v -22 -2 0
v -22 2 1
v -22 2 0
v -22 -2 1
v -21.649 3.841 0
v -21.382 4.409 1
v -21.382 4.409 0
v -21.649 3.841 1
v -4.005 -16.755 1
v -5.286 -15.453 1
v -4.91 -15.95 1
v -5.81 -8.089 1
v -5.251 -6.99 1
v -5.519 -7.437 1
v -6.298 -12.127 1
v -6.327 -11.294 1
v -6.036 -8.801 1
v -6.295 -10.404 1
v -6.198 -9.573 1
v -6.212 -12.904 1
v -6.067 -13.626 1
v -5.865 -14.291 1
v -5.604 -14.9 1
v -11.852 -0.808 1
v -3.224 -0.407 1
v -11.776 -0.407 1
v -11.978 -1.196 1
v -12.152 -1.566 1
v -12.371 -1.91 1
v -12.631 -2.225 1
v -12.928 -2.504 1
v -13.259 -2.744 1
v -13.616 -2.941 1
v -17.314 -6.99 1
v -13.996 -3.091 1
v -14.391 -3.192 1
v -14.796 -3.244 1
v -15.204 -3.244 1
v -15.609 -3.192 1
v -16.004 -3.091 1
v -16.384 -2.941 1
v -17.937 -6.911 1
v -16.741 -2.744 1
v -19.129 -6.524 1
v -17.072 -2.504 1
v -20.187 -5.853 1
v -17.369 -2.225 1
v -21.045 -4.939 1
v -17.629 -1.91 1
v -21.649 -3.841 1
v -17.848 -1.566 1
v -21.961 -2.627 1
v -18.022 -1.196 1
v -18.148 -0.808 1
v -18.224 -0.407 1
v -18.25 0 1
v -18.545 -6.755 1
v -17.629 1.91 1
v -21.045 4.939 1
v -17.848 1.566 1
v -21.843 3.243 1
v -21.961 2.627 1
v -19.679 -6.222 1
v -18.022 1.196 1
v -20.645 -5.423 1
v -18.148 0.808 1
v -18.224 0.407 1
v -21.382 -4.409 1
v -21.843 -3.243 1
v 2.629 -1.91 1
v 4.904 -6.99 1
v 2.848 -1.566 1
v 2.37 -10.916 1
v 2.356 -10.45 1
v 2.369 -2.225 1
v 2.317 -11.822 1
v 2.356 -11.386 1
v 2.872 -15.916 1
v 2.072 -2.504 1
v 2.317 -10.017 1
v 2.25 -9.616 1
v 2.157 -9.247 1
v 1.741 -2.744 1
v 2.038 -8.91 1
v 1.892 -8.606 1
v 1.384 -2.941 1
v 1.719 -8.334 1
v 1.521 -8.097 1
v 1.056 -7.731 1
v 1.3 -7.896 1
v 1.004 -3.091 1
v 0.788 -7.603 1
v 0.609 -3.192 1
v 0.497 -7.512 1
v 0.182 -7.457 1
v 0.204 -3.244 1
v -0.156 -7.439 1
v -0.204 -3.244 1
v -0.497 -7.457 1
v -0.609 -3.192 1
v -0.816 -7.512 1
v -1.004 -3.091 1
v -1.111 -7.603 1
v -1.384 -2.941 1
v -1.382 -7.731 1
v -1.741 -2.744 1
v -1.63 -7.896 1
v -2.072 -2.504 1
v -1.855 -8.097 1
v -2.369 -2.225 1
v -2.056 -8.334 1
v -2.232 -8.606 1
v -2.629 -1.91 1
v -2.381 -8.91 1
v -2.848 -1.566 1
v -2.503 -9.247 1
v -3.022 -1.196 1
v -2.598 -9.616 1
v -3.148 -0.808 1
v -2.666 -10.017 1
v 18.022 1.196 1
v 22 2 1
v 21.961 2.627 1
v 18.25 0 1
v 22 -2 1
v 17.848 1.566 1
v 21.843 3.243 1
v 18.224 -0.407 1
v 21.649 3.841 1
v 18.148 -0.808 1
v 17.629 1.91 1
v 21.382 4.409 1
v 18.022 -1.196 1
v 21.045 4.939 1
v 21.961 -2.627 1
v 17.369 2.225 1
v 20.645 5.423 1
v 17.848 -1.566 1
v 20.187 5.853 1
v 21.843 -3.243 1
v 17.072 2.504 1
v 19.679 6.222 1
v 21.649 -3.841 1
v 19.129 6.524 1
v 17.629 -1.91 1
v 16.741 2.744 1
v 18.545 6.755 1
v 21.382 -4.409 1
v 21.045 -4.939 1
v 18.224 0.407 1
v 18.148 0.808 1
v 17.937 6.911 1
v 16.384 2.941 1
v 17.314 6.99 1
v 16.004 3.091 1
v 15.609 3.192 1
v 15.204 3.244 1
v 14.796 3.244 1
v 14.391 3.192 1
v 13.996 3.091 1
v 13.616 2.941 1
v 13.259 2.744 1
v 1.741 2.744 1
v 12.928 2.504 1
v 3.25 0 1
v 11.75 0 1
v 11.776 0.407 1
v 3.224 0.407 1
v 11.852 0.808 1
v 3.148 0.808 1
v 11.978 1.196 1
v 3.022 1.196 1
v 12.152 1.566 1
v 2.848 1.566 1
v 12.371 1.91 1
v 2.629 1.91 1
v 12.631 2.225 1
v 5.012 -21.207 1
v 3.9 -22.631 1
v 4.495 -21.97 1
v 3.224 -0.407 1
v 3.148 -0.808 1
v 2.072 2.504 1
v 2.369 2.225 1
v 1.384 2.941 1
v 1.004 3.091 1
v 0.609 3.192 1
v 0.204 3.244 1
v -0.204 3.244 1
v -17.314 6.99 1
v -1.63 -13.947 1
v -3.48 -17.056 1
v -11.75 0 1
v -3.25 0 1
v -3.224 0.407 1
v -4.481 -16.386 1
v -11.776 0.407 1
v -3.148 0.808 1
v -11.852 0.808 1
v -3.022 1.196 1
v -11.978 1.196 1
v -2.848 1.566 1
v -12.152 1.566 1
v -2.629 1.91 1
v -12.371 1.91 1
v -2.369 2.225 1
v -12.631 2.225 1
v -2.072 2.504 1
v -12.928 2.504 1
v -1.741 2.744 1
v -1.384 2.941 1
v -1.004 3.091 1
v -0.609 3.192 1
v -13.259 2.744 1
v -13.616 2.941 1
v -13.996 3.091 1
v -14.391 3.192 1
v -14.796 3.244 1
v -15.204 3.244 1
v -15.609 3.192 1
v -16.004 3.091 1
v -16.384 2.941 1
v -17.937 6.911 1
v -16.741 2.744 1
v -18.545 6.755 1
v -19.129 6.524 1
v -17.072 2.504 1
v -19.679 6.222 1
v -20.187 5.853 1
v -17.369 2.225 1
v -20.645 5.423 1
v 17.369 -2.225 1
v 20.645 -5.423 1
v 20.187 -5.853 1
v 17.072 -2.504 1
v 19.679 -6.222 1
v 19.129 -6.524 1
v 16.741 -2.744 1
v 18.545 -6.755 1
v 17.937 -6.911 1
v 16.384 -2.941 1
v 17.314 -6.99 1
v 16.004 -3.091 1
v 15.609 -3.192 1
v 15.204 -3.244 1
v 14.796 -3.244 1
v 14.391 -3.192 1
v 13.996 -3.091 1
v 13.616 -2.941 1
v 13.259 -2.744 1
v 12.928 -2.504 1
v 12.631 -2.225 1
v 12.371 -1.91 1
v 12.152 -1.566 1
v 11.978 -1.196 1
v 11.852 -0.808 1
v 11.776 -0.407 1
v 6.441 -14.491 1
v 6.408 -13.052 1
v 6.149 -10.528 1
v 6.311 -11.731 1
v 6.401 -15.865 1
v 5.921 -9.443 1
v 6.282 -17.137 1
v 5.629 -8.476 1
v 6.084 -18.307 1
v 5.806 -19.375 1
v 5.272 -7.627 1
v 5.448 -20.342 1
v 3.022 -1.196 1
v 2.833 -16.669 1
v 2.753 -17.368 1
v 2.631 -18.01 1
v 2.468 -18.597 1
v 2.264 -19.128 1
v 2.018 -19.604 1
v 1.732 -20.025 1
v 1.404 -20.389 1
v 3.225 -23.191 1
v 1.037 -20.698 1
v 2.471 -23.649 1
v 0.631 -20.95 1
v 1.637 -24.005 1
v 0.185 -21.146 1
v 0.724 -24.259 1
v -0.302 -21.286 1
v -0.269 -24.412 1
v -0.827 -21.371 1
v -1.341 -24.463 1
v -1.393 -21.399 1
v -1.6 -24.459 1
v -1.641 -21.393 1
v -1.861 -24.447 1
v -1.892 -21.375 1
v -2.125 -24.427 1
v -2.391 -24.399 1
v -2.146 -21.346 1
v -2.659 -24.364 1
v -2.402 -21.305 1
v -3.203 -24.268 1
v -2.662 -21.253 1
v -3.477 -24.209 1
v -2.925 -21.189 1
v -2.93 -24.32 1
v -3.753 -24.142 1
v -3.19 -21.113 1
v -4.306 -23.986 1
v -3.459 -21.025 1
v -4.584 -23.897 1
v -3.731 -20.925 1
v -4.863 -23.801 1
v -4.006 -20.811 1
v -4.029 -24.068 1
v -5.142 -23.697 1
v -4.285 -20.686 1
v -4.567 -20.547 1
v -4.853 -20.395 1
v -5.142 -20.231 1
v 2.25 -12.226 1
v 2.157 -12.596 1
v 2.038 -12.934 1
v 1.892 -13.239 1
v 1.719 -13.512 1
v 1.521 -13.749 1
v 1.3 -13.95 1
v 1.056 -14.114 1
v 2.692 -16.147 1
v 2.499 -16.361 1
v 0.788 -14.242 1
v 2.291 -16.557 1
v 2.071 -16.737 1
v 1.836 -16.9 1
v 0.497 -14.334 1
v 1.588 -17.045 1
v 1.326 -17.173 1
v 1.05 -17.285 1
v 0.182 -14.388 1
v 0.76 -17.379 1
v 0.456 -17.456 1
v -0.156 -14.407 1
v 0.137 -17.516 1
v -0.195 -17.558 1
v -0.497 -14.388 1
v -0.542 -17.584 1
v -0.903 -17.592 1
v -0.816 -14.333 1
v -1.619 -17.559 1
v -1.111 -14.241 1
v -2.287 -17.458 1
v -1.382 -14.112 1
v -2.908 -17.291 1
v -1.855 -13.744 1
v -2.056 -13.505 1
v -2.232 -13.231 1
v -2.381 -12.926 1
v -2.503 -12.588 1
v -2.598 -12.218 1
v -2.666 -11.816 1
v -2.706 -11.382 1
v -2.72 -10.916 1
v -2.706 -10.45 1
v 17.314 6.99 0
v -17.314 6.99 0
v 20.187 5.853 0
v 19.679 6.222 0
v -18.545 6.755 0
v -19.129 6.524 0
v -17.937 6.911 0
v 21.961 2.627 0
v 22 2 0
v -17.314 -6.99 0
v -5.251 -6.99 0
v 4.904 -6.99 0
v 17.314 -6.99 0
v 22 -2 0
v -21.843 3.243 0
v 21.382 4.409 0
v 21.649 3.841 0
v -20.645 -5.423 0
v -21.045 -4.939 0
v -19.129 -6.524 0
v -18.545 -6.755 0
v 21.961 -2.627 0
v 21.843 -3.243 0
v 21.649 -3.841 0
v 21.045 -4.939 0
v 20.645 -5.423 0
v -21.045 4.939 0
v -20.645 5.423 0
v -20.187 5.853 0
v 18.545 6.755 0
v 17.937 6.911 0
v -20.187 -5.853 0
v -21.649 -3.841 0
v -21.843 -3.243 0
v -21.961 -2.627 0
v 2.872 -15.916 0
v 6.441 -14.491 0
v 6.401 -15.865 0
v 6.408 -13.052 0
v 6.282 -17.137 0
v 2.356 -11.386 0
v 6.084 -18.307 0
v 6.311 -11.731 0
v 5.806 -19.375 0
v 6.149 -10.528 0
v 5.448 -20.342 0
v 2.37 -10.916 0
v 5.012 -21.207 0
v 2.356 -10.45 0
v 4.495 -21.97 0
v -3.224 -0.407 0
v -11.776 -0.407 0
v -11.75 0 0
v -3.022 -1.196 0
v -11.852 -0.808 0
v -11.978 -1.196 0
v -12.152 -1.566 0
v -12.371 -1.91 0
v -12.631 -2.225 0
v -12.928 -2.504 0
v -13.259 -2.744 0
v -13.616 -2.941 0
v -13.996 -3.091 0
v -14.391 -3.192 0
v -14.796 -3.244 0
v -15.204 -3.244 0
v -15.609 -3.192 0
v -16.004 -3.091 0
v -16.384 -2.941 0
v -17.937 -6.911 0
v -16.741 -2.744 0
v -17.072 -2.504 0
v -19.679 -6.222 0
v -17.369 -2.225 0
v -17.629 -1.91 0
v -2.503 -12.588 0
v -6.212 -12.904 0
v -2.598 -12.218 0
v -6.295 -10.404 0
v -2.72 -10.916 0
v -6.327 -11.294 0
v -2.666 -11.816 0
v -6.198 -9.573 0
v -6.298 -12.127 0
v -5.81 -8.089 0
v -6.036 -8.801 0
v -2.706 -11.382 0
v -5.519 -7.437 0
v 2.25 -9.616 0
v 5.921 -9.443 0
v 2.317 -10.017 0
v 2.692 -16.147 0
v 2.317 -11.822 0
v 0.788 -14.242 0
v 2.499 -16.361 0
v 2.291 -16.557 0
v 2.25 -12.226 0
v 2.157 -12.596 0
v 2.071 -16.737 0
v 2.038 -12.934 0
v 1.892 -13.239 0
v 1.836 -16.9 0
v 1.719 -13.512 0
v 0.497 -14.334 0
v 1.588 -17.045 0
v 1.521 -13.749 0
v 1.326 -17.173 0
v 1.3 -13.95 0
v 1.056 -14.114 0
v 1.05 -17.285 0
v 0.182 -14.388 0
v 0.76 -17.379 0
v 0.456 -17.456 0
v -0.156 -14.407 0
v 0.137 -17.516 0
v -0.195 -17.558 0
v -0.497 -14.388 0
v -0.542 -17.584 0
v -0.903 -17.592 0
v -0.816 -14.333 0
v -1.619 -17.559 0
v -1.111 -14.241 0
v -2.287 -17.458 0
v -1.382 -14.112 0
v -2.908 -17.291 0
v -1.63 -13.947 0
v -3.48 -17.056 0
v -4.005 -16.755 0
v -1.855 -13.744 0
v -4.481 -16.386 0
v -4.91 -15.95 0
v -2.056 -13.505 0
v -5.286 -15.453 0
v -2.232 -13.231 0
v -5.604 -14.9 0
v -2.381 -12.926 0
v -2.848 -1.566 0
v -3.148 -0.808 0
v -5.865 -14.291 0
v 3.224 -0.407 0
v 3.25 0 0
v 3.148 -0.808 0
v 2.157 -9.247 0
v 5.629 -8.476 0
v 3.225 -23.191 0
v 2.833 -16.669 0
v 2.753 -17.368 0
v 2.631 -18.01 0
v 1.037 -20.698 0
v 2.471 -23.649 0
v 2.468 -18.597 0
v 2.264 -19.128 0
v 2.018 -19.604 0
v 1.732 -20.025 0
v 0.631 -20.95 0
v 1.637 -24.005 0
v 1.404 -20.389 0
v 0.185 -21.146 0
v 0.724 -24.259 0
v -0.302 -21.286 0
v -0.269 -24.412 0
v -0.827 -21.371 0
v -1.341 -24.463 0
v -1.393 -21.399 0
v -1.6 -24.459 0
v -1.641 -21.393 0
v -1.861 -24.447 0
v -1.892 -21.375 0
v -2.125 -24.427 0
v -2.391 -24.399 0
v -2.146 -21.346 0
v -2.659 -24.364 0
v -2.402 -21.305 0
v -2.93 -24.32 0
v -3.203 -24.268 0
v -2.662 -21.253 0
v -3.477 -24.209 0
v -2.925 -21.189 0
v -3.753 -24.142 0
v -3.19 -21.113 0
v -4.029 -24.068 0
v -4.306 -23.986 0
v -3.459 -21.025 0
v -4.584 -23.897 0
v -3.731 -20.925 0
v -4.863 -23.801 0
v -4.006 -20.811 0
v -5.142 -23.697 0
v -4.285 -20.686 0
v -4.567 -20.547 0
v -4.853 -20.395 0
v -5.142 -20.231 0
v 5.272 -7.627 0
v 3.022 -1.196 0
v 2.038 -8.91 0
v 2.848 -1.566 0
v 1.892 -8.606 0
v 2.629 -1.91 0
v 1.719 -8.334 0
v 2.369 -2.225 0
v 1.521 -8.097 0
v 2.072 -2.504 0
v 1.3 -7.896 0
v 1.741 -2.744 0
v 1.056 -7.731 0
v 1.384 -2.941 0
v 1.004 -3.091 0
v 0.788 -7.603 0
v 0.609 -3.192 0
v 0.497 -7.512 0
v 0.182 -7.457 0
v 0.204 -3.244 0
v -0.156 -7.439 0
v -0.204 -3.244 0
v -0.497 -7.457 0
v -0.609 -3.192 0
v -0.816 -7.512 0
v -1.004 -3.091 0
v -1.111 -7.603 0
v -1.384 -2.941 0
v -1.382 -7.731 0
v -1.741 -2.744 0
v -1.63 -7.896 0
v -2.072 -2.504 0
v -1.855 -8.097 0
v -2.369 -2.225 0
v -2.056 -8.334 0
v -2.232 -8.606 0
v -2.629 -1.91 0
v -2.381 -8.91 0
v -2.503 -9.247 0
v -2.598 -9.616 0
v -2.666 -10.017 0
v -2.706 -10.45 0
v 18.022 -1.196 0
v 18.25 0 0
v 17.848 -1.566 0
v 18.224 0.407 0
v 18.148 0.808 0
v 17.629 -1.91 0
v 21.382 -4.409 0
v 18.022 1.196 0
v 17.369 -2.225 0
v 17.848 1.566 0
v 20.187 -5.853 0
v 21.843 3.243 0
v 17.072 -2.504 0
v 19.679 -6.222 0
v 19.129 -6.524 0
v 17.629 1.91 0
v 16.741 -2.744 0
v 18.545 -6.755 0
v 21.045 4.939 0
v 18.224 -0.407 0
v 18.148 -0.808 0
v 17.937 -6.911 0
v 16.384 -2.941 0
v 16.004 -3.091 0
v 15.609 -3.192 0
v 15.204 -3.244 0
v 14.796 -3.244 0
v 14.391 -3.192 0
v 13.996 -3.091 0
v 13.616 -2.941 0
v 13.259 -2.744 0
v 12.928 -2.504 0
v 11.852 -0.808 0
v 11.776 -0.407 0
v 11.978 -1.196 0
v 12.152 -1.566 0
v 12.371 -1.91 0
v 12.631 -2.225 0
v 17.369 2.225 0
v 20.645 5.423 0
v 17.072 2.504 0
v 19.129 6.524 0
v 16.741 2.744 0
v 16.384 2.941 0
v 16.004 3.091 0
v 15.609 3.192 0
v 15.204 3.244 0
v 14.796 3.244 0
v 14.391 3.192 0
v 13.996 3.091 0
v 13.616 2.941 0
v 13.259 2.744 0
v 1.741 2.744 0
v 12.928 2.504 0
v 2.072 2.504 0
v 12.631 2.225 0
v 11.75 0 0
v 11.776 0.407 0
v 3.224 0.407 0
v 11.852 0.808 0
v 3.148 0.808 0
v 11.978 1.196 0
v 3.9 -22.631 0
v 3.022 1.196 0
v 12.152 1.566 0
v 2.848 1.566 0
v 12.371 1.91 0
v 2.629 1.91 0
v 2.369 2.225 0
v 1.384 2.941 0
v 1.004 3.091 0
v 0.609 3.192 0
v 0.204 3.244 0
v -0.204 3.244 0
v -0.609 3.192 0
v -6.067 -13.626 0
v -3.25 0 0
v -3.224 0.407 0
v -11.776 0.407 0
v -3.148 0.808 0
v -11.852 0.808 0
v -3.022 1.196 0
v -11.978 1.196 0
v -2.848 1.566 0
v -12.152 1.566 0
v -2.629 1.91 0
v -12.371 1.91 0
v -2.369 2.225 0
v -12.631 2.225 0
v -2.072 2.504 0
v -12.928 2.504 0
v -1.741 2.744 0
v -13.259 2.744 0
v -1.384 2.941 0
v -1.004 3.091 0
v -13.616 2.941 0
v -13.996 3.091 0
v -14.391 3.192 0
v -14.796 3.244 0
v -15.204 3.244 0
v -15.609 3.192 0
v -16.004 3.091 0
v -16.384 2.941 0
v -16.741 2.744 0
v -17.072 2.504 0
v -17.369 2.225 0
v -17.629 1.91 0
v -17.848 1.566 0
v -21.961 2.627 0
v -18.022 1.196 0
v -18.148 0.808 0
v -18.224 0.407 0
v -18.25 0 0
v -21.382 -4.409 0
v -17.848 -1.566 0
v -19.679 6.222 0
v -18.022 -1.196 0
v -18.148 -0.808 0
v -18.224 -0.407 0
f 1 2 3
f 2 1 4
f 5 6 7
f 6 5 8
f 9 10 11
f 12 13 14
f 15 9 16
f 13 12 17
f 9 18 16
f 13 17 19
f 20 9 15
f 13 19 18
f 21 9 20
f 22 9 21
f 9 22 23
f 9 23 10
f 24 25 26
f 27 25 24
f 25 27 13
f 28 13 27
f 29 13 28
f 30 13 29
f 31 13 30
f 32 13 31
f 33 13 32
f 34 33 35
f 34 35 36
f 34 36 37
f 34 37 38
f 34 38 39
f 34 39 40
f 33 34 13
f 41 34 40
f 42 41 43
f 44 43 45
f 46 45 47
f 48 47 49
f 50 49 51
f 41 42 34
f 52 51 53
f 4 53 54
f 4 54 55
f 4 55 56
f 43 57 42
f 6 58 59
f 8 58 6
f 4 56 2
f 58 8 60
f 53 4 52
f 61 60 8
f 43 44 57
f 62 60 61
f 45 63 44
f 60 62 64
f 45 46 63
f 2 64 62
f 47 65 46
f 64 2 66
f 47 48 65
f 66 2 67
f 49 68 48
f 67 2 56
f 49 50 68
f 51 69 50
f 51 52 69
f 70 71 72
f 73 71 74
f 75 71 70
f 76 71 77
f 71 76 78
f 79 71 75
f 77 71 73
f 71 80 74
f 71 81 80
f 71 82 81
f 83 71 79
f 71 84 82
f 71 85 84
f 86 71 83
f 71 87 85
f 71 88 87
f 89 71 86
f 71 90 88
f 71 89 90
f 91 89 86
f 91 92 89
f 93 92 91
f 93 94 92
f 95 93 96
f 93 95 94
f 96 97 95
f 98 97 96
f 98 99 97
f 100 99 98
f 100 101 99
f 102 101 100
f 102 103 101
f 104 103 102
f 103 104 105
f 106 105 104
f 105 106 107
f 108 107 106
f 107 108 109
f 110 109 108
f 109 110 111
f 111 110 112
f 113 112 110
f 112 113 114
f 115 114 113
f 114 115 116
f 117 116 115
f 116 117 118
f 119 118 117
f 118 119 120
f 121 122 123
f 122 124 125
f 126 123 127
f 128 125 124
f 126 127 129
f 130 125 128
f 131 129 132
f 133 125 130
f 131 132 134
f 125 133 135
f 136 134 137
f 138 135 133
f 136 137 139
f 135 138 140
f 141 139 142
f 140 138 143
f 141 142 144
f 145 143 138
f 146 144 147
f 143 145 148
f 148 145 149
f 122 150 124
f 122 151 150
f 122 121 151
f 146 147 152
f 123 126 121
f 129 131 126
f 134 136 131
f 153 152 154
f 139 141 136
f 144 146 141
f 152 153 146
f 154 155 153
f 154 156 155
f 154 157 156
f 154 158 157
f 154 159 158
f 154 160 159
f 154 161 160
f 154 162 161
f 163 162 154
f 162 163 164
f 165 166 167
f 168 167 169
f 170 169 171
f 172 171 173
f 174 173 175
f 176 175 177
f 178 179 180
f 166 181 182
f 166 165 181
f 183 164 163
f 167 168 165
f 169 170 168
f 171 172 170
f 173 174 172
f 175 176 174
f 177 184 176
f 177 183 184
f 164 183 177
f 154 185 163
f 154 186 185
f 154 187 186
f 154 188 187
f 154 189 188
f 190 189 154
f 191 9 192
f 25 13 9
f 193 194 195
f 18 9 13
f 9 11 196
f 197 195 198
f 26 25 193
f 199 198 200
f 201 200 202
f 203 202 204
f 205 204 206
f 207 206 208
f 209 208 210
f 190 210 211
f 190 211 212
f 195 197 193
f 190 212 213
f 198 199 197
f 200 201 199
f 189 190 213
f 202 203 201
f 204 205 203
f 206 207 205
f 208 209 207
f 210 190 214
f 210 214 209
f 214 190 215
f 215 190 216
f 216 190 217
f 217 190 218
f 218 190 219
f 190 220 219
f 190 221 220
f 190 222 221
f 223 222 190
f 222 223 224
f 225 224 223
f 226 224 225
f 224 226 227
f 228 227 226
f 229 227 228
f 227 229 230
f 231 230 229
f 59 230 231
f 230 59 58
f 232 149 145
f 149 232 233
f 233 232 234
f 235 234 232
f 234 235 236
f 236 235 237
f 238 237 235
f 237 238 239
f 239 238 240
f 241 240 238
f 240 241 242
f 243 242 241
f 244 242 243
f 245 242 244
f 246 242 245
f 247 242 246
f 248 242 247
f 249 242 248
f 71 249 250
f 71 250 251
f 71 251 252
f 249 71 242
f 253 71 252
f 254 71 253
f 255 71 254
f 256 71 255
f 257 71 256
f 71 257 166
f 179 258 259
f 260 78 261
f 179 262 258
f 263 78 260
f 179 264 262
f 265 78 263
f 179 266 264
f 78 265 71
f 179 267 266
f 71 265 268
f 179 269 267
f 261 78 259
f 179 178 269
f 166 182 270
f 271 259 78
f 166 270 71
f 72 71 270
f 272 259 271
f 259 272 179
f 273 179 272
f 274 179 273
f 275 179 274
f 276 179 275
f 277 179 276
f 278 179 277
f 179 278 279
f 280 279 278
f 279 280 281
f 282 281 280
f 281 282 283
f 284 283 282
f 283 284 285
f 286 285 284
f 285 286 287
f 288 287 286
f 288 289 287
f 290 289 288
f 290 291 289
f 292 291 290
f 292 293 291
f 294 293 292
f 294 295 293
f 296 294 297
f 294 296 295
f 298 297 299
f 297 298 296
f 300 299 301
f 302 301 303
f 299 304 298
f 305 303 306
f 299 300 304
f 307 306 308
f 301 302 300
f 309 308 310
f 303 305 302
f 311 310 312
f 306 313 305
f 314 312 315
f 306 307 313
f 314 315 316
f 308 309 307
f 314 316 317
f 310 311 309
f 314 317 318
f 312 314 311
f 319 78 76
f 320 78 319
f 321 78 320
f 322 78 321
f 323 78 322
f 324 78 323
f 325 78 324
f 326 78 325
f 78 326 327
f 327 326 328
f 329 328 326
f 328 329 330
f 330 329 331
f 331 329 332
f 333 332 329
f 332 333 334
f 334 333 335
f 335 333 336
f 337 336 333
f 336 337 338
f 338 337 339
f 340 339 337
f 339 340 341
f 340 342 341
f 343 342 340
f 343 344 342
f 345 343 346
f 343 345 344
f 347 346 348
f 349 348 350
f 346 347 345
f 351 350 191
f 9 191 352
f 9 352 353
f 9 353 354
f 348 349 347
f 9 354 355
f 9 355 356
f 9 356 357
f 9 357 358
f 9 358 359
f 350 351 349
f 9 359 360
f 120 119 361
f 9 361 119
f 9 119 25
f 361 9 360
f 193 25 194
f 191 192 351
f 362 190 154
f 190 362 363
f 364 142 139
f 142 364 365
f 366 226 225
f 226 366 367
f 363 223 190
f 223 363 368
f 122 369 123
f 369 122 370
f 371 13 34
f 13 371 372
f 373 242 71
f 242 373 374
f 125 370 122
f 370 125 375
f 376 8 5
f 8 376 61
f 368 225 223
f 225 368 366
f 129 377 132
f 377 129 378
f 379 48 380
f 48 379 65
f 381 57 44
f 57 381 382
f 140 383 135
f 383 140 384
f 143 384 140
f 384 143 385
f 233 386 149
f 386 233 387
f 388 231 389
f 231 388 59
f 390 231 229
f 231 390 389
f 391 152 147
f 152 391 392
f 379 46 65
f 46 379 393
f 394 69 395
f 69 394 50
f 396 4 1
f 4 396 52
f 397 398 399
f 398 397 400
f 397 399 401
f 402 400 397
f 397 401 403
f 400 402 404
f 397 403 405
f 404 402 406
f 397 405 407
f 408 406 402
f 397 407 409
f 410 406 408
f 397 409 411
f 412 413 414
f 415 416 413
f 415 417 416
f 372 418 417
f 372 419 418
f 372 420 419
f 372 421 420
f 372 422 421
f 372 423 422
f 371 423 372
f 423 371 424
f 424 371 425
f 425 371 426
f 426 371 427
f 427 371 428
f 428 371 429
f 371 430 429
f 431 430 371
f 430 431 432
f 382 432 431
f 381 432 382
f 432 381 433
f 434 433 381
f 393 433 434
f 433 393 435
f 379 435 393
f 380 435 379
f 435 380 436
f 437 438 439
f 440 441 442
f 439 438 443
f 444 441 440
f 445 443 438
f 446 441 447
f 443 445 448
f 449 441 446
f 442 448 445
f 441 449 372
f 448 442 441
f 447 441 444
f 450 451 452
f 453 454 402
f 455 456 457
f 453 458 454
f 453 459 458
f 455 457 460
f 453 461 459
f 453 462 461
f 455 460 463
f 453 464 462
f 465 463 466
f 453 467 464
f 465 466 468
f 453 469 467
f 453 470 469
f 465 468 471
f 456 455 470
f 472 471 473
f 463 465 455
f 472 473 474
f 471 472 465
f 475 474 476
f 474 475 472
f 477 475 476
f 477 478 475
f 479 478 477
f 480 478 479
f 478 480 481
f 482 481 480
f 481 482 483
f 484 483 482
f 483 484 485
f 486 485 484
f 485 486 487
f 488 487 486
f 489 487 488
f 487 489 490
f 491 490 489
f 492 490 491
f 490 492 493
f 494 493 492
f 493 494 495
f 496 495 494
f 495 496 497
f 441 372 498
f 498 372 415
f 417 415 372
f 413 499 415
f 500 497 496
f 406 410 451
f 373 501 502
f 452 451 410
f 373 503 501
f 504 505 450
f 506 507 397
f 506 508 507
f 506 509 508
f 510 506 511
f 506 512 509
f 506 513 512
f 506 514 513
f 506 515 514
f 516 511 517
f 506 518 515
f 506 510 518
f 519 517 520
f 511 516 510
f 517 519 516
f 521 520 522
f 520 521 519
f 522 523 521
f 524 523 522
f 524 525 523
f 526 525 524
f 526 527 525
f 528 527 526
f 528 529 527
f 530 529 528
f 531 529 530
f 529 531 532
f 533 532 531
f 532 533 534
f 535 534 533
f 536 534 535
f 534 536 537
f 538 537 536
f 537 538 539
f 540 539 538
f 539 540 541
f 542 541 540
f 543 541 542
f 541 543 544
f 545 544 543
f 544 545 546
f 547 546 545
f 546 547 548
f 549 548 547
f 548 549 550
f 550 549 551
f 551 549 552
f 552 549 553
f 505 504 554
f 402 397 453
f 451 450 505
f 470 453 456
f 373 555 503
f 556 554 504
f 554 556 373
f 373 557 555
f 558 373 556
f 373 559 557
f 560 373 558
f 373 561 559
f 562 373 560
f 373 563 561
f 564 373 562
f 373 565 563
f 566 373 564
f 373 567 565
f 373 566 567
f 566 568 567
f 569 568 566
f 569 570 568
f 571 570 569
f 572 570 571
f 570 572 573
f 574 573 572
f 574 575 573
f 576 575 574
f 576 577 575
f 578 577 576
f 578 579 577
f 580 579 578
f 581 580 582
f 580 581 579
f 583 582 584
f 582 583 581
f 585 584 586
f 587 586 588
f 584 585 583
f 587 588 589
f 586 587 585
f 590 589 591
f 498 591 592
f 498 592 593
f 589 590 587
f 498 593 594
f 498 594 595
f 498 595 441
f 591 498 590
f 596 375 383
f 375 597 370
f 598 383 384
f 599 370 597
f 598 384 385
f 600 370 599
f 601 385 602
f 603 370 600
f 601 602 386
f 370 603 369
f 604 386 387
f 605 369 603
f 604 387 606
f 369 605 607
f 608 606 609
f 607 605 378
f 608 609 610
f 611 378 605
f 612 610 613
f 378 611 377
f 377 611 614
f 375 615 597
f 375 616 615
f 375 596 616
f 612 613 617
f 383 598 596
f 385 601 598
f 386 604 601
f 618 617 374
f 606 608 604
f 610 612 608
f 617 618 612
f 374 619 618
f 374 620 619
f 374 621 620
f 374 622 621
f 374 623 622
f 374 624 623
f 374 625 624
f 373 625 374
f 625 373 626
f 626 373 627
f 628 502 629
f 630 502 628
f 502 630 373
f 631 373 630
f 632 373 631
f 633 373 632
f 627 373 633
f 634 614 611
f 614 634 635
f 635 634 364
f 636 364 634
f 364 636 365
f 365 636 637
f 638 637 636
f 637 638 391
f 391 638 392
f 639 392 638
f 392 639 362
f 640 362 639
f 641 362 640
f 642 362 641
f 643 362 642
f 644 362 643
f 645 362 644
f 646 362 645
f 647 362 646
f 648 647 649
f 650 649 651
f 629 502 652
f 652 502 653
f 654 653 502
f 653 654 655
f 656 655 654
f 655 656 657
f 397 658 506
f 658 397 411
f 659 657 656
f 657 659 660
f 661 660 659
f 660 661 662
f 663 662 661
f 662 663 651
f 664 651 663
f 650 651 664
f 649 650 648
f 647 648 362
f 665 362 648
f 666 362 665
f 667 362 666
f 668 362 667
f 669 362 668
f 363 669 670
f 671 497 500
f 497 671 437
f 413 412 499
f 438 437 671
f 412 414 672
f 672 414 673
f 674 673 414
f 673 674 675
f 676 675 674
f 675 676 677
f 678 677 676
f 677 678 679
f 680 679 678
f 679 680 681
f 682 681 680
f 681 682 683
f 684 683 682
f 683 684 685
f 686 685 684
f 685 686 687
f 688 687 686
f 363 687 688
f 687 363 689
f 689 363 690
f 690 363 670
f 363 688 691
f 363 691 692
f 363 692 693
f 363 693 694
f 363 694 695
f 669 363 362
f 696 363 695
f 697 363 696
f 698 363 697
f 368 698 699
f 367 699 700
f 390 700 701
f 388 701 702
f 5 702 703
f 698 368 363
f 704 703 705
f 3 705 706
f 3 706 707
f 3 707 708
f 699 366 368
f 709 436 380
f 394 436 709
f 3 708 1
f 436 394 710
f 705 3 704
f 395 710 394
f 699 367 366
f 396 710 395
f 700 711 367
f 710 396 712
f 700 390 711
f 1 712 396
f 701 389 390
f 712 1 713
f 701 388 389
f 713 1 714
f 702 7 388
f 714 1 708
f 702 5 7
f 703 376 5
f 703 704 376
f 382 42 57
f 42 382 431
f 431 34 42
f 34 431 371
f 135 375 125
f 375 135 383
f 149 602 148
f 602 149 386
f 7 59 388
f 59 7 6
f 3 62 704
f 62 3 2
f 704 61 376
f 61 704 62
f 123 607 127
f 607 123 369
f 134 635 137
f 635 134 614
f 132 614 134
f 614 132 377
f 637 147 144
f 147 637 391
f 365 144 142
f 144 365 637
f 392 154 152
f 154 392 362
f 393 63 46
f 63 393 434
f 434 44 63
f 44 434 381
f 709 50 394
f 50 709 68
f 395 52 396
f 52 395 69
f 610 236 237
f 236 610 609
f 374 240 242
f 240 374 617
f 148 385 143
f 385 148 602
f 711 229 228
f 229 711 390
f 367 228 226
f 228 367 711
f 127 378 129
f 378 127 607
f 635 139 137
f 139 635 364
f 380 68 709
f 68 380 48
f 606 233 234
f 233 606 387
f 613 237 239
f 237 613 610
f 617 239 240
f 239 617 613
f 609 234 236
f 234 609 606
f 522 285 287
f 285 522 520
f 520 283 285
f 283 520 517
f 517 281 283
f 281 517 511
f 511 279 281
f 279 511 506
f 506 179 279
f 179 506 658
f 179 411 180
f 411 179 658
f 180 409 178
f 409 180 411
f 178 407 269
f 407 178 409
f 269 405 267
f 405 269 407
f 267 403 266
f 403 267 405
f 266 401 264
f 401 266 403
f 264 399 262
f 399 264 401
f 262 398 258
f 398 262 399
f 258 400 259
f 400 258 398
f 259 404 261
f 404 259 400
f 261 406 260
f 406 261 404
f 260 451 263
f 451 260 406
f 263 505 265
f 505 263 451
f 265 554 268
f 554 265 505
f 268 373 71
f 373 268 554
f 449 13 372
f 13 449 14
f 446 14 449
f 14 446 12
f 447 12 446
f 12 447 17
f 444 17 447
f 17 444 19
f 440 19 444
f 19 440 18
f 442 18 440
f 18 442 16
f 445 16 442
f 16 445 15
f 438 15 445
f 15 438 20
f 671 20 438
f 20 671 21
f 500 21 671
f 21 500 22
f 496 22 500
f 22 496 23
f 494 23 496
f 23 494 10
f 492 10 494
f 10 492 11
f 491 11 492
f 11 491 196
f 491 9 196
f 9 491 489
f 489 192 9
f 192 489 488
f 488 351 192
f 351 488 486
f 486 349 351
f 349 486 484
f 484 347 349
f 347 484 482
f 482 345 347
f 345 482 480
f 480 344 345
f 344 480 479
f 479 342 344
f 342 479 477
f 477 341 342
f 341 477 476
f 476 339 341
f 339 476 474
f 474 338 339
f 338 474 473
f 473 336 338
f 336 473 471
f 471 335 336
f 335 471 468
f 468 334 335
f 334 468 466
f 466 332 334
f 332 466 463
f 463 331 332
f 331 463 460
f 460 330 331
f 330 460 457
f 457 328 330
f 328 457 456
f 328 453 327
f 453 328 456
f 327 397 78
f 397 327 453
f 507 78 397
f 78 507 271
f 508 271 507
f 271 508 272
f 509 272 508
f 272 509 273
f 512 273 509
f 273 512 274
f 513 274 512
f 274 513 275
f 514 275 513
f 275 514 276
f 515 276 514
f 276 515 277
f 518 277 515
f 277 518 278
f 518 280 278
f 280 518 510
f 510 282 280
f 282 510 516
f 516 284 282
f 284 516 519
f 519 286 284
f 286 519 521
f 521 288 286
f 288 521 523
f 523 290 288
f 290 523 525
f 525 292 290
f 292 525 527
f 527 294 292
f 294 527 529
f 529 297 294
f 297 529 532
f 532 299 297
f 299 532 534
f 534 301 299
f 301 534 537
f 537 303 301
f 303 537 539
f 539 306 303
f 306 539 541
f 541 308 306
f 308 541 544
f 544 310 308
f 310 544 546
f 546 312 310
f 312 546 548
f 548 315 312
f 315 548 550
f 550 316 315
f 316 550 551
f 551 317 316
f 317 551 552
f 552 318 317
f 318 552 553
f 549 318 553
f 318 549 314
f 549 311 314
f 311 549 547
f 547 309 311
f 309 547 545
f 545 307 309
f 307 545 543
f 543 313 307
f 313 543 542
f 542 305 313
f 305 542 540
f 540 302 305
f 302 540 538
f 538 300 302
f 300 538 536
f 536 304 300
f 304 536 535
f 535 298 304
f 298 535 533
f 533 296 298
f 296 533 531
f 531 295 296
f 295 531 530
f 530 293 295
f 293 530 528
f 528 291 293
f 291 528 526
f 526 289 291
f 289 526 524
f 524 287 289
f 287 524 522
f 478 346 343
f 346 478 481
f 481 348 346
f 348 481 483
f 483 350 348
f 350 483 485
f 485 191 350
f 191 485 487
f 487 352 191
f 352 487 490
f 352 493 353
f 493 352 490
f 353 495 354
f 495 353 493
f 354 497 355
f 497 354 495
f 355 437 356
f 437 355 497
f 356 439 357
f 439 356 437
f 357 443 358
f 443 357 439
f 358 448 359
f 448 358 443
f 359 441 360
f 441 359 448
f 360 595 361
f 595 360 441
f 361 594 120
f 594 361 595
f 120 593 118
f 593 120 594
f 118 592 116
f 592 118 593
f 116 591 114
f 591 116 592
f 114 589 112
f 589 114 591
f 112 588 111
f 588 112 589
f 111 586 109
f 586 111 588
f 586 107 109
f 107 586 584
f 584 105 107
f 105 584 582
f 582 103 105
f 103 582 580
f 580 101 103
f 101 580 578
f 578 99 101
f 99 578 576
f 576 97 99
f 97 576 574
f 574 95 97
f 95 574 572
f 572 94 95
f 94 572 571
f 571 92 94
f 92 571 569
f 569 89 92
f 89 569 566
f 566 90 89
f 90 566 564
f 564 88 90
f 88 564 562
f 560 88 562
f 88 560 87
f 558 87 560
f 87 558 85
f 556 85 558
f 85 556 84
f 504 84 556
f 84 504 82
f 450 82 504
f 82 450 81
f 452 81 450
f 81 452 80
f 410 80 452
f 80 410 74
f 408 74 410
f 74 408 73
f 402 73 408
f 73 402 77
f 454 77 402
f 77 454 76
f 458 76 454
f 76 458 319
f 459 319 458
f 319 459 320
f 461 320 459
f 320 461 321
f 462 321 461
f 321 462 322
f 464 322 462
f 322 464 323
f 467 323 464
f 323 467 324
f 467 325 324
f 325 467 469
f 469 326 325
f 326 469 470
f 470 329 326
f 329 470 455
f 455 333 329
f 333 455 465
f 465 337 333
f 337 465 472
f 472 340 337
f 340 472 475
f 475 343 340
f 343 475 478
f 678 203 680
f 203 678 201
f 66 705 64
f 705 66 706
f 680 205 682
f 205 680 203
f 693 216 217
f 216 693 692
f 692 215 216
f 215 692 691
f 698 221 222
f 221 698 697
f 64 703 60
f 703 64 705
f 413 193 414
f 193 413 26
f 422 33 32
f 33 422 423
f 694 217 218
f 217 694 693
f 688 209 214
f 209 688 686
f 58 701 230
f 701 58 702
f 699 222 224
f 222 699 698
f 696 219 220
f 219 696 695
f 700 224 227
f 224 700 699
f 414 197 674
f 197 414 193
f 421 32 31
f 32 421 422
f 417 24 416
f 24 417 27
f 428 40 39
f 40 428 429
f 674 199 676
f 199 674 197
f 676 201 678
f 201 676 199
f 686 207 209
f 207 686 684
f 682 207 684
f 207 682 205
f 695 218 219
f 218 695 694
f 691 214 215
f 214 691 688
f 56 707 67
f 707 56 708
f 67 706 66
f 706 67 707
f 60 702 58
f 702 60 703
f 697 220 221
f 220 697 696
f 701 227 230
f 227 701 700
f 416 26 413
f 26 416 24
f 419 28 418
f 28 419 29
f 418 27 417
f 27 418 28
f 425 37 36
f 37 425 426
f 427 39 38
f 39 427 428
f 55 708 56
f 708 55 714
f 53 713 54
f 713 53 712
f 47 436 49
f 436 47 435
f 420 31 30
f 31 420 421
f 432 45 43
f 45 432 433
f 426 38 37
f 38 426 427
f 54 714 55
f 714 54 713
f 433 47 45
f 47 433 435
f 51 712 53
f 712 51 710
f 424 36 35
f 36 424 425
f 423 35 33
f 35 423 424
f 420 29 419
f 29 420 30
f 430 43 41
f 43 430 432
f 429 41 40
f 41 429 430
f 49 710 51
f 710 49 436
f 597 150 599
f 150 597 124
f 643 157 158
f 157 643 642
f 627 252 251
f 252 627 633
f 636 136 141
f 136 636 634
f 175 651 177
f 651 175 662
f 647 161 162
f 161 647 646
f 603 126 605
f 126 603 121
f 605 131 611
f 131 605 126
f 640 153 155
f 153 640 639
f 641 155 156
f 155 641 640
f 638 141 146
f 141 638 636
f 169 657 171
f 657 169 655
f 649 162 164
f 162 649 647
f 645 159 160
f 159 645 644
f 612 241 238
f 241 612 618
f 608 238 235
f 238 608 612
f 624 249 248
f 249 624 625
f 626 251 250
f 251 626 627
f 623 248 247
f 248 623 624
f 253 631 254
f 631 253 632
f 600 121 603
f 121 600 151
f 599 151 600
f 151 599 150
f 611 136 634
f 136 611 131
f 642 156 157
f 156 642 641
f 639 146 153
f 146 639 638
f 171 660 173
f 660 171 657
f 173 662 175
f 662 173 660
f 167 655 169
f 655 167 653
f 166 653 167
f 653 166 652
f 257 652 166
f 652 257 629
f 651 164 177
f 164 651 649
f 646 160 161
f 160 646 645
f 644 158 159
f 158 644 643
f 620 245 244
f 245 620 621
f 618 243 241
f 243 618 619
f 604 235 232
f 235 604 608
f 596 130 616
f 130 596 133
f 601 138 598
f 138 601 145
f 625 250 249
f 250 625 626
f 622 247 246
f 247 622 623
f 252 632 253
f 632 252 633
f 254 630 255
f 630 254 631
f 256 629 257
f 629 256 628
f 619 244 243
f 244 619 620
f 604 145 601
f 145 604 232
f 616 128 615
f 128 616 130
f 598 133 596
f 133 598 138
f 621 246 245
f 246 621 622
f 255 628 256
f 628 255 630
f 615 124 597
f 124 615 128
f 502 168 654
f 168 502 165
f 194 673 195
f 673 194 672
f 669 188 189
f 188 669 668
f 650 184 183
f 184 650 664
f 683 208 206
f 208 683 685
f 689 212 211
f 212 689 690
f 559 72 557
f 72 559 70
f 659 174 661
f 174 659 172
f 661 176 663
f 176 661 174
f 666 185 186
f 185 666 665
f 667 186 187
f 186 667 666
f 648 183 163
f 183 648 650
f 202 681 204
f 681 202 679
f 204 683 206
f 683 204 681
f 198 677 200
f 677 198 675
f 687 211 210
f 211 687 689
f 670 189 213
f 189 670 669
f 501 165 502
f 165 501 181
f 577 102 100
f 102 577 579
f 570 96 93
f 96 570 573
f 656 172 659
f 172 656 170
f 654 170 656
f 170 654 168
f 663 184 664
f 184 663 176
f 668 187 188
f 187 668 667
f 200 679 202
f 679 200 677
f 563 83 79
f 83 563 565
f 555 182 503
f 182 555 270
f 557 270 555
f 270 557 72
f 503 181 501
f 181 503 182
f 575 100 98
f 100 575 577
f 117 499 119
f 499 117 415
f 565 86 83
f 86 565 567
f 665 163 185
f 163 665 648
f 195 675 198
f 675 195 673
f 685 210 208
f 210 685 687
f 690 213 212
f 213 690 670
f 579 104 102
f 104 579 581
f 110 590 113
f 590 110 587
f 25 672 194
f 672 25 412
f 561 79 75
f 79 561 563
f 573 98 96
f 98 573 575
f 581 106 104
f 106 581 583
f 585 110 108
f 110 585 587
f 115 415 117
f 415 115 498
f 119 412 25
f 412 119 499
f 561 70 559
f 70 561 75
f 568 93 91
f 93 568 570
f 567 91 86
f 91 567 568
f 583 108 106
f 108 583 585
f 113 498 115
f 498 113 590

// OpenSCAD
$fn = 50;


difference() {
	union() {
		translate(v = [0, 0, 0]) {
			rotate(a = [0, 0, 0]) {
				hull() {
					translate(v = [-17.0000000000, 2.0000000000, 0]) {
						rotate(a = [0, 0, 0]) {
							translate(v = [0, 0, 0]) {
								rotate(a = [0, 0, 0]) {
									cylinder(h = 1, r = 5);
								}
							}
						}
					}
					translate(v = [17.0000000000, 2.0000000000, 0]) {
						rotate(a = [0, 0, 0]) {
							translate(v = [0, 0, 0]) {
								rotate(a = [0, 0, 0]) {
									cylinder(h = 1, r = 5);
								}
							}
						}
					}
					translate(v = [-17.0000000000, -2.0000000000, 0]) {
						rotate(a = [0, 0, 0]) {
							translate(v = [0, 0, 0]) {
								rotate(a = [0, 0, 0]) {
									cylinder(h = 1, r = 5);
								}
							}
						}
					}
					translate(v = [17.0000000000, -2.0000000000, 0]) {
						rotate(a = [0, 0, 0]) {
							translate(v = [0, 0, 0]) {
								rotate(a = [0, 0, 0]) {
									cylinder(h = 1, r = 5);
								}
							}
						}
					}
				}
			}
		}
		translate(v = [0, -5, 0]) {
			rotate(a = [0, 0, 0]) {
				linear_extrude(height = 1) {
					text(font = "DejaVu Sans Mono:style=Bold", halign = "center", size = 19.0000000000, text = "9", valign = "top");
				}
			}
		}
	}
	union() {
		translate(v = [-15.0000000000, 0.0000000000, -125.0000000000]) {
			rotate(a = [0, 0, 0]) {
				cylinder(h = 250, r = 3.2500000000);
			}
		}
		translate(v = [15.0000000000, 0.0000000000, -125.0000000000]) {
			rotate(a = [0, 0, 0]) {
				cylinder(h = 250, r = 3.2500000000);
			}
		}
		translate(v = [15.0000000000, 0.0000000000, -125.0000000000]) {
			rotate(a = [0, 0, 0]) {
				cylinder(h = 250, r = 3.2500000000);
			}
		}
		translate(v = [0, 0, -125.0000000000]) {
			rotate(a = [0, 0, 0]) {
				cylinder(h = 250, r = 3.2500000000);
			}
		}
	}
}
